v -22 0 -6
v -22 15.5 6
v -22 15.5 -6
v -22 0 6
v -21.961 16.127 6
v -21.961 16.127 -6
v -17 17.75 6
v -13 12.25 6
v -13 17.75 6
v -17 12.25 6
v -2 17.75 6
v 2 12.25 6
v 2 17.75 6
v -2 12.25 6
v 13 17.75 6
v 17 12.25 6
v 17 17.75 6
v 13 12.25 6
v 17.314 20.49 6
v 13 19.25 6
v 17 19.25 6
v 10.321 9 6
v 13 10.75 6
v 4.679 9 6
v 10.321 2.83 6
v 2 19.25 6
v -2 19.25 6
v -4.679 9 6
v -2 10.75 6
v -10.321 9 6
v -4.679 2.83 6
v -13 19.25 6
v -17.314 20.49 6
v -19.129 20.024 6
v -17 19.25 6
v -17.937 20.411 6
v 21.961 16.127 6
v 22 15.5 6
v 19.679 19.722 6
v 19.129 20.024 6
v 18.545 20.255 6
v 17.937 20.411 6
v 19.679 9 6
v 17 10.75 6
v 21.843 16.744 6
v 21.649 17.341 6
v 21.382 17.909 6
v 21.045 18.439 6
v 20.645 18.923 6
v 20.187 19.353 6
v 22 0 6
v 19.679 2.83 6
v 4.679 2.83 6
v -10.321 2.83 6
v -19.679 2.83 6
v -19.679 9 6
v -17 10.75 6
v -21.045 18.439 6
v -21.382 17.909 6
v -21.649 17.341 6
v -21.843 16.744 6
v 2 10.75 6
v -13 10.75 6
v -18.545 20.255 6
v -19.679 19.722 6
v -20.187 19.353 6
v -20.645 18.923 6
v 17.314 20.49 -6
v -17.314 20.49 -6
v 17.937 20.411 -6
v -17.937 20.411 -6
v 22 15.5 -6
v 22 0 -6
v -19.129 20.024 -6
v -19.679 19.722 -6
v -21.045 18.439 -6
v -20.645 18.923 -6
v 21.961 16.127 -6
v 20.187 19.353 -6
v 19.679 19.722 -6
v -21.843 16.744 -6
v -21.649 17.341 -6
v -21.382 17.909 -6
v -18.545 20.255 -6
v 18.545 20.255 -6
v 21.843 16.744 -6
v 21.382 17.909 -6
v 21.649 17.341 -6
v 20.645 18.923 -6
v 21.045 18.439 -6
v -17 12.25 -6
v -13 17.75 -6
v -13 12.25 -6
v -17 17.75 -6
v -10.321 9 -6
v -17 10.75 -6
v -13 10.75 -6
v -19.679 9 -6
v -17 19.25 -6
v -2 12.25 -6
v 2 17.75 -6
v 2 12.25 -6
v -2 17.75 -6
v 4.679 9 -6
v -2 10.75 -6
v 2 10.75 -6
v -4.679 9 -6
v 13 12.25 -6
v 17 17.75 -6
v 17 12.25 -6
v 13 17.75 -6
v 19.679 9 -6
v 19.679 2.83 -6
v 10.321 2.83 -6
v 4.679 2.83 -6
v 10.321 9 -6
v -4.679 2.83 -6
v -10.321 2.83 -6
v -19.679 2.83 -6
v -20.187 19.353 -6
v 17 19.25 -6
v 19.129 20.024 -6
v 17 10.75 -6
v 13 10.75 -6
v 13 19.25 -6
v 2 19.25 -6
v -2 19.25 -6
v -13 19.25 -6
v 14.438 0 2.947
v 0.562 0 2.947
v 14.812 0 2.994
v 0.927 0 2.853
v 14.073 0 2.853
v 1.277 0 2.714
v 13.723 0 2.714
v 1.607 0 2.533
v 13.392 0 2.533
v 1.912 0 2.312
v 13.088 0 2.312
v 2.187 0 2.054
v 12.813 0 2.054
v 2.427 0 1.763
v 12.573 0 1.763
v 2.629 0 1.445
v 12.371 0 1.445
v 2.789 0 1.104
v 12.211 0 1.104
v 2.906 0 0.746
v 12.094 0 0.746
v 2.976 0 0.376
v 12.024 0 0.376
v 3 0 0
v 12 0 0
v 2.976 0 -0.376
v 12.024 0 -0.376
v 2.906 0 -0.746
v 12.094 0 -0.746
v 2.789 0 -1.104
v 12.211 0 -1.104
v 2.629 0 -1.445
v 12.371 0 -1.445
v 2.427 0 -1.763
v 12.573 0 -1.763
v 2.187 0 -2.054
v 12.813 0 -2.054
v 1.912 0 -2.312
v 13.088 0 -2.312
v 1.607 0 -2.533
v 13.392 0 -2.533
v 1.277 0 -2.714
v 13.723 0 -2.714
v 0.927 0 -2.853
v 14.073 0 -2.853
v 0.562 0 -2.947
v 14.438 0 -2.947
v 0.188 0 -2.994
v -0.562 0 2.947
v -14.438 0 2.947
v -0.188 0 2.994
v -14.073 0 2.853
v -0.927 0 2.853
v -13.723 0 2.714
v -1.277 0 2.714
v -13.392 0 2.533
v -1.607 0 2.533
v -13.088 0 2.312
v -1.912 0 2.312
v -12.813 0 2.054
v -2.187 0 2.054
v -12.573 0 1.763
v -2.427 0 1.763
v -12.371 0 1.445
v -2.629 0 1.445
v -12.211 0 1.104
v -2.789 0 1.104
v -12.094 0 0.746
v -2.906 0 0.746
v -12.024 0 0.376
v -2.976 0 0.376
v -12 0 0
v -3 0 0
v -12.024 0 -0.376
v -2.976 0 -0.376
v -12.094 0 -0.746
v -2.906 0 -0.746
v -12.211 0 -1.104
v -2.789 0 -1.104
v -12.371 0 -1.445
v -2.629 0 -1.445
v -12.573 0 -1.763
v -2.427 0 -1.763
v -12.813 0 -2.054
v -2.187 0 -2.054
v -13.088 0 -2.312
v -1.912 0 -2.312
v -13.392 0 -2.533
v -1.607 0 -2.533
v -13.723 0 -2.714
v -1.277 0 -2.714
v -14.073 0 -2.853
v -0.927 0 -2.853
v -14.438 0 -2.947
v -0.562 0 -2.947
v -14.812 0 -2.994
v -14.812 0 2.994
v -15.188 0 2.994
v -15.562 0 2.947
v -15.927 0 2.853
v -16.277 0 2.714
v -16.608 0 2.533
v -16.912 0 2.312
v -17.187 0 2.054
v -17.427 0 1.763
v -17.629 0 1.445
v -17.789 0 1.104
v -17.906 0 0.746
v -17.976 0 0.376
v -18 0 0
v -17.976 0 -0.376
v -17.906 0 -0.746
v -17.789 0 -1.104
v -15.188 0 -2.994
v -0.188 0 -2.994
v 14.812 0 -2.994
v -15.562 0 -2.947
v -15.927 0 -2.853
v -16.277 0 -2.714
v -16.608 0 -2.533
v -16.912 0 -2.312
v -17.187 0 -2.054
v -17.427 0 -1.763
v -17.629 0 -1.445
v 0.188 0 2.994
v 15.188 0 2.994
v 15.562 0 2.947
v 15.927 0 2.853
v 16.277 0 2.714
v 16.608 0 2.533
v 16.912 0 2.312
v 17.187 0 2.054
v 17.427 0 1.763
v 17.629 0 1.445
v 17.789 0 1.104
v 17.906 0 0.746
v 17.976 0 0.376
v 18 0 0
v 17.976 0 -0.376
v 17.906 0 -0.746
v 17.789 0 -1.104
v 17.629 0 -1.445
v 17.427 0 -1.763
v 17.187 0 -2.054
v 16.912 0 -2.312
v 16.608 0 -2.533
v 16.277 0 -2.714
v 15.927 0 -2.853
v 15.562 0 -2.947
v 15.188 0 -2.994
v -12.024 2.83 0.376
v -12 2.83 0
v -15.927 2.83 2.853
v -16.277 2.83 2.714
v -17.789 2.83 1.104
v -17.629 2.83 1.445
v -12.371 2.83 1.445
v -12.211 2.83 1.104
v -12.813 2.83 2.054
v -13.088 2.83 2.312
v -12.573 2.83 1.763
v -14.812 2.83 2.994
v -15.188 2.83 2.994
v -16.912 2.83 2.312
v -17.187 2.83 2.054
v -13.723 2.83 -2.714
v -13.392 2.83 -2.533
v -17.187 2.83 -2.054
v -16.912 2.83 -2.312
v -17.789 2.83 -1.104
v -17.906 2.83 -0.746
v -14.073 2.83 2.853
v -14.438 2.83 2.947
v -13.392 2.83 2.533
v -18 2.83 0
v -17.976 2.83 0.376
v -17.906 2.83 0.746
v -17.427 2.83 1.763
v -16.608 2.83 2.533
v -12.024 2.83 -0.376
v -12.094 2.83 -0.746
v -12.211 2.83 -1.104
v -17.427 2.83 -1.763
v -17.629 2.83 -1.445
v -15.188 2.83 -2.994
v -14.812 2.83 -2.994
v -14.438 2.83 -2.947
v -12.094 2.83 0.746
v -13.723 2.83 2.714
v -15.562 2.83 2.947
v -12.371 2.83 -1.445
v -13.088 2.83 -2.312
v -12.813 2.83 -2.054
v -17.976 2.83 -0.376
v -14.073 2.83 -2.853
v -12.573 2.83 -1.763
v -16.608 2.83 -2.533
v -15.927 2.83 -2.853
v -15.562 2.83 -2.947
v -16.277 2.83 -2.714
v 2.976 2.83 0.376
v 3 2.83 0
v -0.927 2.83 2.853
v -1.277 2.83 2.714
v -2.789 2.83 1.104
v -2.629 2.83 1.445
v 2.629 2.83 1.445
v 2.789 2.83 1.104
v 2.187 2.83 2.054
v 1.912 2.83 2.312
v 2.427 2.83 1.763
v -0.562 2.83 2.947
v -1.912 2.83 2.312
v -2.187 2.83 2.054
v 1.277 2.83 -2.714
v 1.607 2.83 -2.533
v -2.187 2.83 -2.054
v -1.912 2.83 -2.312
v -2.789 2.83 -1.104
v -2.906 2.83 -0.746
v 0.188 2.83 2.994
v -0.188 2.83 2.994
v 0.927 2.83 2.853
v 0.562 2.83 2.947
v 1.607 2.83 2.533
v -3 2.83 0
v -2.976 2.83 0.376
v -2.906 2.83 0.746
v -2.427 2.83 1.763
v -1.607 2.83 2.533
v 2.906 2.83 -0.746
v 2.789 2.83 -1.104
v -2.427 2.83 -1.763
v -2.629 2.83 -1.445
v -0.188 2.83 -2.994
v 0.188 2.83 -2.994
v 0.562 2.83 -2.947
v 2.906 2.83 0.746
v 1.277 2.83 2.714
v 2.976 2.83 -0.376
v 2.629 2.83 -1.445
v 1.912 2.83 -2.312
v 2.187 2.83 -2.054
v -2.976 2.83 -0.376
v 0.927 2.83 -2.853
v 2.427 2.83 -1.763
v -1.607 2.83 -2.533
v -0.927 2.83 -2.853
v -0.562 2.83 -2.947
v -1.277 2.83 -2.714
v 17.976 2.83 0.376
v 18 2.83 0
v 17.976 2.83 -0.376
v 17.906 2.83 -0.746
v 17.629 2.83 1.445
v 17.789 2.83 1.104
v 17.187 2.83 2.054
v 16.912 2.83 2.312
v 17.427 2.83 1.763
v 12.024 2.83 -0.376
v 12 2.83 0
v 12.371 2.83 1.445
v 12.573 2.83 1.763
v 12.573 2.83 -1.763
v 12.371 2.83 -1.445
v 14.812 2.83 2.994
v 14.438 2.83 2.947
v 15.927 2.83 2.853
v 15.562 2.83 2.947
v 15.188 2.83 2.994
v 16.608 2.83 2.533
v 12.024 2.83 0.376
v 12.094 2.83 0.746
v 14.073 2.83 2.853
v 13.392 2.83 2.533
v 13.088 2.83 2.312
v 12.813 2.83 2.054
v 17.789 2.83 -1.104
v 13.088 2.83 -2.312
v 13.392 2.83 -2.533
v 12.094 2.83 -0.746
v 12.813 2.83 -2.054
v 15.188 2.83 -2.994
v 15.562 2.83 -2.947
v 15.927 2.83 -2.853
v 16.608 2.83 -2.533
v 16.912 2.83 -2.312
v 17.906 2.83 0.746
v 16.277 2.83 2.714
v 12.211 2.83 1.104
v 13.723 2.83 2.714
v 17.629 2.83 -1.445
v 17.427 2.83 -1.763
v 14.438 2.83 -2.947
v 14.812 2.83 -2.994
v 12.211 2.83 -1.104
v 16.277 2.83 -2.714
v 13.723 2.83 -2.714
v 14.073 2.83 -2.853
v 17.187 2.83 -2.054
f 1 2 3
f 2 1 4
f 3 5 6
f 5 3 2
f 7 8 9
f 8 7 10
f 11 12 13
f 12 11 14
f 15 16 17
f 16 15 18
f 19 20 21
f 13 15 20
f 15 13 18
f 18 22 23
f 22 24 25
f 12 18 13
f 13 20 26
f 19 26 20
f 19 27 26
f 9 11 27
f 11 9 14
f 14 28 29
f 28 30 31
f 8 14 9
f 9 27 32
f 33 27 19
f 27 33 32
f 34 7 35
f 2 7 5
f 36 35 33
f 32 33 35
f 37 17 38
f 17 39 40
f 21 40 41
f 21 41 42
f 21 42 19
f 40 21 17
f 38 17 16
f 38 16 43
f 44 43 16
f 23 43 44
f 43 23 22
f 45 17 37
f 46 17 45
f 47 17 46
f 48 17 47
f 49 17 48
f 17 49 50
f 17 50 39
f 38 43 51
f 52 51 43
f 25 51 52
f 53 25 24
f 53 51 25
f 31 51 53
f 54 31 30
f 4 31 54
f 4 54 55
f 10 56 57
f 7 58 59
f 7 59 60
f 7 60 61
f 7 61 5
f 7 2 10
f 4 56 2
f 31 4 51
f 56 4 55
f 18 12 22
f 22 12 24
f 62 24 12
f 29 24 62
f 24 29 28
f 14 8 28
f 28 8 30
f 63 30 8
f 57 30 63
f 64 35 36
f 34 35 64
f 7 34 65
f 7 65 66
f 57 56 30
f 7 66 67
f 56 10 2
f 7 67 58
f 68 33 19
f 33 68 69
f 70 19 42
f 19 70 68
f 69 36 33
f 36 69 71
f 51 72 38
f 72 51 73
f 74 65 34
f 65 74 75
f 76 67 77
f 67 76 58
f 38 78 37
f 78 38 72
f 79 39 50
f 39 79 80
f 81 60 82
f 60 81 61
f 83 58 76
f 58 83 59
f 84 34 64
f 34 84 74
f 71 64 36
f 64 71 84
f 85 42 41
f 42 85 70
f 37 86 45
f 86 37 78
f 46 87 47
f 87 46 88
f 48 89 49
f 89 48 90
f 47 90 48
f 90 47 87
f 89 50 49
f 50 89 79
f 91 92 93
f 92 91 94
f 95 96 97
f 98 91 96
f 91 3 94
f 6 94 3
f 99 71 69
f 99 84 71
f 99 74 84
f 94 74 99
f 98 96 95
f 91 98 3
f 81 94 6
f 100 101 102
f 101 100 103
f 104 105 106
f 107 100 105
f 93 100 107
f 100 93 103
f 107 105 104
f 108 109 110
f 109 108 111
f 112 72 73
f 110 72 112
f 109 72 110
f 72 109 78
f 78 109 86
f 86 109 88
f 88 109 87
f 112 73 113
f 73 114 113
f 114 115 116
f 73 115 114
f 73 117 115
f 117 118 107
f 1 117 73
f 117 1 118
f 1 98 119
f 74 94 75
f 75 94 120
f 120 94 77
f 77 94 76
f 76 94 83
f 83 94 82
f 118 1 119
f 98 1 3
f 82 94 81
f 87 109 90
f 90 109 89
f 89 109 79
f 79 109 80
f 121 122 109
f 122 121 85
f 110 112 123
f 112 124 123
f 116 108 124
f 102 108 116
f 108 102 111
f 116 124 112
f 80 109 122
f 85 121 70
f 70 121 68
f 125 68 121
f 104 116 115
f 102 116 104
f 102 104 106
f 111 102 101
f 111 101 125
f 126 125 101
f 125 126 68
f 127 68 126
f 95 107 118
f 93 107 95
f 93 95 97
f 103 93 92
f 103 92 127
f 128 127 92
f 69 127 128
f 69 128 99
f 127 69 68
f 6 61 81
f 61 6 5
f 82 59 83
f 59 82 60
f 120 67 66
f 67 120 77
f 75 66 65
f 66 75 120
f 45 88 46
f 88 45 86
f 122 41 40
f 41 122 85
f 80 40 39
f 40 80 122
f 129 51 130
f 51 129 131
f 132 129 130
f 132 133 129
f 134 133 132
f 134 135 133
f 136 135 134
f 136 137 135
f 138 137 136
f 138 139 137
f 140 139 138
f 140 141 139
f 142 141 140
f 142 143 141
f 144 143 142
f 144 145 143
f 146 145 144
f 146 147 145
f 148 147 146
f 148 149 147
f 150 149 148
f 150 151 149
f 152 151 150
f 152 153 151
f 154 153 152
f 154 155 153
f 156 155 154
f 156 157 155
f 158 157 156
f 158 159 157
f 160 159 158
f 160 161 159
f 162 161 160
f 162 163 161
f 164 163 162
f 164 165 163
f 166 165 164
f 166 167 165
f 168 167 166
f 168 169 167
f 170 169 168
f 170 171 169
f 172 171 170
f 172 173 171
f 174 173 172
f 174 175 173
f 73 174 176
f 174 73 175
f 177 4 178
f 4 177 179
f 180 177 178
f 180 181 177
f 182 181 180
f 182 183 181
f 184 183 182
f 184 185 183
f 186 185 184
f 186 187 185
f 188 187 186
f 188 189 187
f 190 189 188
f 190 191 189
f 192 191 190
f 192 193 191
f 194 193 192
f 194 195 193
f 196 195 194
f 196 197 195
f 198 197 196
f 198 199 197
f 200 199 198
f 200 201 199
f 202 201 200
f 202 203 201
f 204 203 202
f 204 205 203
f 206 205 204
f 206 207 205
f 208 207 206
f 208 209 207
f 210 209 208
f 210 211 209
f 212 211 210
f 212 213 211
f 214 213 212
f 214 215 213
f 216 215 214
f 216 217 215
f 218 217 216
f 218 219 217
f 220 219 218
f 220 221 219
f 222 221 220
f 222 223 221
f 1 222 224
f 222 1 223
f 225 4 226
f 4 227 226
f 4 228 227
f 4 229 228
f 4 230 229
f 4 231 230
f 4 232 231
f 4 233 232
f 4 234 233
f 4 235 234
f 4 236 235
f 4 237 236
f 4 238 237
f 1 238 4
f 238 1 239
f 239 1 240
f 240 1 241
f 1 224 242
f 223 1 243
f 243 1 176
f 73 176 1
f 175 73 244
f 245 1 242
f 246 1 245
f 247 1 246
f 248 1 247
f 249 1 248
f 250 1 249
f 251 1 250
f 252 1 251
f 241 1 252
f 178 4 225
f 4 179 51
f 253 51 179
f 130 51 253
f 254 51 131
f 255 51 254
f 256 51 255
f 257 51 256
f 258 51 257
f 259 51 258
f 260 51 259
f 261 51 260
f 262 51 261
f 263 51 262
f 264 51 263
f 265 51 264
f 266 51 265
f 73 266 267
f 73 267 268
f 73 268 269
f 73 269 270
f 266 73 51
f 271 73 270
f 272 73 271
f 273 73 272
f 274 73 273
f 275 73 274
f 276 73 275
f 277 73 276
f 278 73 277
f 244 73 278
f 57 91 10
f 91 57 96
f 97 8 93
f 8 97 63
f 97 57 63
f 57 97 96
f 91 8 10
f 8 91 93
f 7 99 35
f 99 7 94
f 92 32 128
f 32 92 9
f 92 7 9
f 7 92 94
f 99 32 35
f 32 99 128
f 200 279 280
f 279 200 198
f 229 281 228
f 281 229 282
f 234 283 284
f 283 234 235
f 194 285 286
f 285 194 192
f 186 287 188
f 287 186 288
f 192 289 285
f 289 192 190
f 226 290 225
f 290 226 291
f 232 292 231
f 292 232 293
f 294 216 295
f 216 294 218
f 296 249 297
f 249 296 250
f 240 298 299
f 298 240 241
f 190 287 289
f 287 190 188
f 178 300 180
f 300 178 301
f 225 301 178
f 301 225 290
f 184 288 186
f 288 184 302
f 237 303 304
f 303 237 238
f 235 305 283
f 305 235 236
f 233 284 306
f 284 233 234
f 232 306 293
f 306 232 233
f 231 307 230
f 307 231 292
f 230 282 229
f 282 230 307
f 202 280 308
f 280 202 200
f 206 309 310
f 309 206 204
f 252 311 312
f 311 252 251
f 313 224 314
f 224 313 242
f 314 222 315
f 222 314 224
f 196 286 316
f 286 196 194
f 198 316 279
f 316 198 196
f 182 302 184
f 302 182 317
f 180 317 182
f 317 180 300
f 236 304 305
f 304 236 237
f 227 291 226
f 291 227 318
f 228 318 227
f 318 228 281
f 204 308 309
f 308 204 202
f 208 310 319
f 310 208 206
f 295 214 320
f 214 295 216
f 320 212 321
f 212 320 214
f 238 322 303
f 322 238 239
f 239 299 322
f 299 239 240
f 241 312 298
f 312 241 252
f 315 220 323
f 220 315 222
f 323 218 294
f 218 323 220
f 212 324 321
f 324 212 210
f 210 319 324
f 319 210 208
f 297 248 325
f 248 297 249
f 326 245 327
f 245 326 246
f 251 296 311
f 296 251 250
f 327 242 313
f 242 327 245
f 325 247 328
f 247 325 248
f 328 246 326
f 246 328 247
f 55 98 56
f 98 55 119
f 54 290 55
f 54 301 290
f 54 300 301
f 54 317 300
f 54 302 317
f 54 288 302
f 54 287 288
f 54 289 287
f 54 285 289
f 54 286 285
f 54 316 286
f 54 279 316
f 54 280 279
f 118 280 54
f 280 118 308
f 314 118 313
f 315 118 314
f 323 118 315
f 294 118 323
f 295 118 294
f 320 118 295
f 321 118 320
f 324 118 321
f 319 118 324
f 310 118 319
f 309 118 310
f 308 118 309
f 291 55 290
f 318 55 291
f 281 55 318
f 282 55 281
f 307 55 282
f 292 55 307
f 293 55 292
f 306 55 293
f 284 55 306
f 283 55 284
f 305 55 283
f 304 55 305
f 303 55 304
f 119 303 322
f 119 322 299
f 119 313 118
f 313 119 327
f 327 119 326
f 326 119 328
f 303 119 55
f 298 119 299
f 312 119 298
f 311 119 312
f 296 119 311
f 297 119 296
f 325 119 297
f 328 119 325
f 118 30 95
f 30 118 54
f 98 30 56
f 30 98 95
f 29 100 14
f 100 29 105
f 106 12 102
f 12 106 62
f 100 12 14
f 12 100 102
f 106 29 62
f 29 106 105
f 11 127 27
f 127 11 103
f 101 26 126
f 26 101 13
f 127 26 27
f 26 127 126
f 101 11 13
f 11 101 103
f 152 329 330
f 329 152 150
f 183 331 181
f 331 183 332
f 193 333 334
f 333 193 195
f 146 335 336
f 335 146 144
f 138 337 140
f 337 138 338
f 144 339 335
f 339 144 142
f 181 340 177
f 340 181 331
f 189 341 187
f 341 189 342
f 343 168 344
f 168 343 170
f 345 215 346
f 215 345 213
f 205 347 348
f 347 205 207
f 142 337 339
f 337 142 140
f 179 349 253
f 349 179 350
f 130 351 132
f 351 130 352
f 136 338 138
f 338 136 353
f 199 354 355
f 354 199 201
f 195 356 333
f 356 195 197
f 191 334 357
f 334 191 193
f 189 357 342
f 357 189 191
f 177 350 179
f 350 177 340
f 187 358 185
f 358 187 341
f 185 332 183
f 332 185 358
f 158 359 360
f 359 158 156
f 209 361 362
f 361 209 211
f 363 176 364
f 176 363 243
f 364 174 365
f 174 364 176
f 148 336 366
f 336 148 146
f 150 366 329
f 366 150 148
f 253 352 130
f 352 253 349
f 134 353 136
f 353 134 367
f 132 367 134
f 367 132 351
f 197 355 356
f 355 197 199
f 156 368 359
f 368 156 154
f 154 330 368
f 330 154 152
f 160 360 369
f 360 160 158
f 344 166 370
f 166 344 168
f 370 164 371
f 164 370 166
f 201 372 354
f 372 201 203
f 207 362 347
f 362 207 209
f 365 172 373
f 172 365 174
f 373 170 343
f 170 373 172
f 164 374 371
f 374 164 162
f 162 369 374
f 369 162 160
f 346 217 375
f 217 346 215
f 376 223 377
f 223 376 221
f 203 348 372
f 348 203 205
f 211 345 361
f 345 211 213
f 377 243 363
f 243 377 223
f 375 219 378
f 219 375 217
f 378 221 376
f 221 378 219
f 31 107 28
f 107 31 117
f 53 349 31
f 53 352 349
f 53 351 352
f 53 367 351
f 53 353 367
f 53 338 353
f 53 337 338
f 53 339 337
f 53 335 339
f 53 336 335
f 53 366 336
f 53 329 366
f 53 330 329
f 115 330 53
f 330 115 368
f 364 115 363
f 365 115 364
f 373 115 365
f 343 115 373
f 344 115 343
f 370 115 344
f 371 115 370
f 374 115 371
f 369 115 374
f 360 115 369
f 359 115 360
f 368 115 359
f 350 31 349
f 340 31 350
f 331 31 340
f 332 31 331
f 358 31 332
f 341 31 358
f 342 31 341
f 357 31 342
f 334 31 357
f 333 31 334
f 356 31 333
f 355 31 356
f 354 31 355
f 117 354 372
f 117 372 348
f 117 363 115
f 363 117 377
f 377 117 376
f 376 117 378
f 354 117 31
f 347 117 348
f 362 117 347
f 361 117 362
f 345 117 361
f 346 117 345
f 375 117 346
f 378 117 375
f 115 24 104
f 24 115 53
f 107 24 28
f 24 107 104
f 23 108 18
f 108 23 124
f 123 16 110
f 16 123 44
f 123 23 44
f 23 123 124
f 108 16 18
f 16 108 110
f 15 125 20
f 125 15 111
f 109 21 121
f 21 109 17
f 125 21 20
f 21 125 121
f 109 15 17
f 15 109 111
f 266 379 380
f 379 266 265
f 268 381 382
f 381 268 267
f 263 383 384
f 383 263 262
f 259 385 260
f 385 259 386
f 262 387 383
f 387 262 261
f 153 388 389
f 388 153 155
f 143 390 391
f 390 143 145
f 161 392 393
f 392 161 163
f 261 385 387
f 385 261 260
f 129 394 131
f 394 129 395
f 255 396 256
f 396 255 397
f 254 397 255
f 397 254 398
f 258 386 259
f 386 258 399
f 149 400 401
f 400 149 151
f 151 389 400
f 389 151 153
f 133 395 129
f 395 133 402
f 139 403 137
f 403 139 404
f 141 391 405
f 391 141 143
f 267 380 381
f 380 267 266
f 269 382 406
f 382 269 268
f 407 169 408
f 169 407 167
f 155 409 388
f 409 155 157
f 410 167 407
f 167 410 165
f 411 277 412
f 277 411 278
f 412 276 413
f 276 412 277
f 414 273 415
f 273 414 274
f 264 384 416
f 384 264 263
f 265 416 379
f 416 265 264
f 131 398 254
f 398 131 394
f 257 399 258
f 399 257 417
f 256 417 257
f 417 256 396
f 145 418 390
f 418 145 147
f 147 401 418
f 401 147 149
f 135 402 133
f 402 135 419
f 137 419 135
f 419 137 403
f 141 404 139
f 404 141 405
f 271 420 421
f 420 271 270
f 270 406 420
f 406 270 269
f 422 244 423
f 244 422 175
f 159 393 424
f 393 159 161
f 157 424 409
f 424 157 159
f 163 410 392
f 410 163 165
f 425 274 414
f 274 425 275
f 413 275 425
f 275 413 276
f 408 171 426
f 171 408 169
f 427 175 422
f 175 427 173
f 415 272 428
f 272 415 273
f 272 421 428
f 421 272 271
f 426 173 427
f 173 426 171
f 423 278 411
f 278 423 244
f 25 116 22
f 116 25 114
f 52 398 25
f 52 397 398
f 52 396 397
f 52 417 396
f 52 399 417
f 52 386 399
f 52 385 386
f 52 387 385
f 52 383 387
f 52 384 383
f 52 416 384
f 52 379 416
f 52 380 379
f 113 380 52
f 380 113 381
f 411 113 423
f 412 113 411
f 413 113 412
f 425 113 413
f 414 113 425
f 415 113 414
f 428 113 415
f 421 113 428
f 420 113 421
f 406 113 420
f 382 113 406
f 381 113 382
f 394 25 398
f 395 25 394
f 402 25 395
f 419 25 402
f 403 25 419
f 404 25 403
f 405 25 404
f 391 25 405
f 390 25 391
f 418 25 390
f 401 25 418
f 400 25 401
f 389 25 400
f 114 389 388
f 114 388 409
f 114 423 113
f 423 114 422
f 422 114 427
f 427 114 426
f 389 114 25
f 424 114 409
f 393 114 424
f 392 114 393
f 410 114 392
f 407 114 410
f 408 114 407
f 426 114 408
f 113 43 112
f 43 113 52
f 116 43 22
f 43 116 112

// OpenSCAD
$fn = 50;


difference() {
	union() {
		translate(v = [0, 13.5000000000, -6.0000000000]) {
			rotate(a = [0, 0, 0]) {
				hull() {
					translate(v = [-17.0000000000, 2.0000000000, 0]) {
						rotate(a = [0, 0, 0]) {
							translate(v = [0, 0, 0]) {
								rotate(a = [0, 0, 0]) {
									cylinder(h = 12, r = 5);
								}
							}
						}
					}
					translate(v = [17.0000000000, 2.0000000000, 0]) {
						rotate(a = [0, 0, 0]) {
							translate(v = [0, 0, 0]) {
								rotate(a = [0, 0, 0]) {
									cylinder(h = 12, r = 5);
								}
							}
						}
					}
					translate(v = [-17.0000000000, -2.0000000000, 0]) {
						rotate(a = [0, 0, 0]) {
							translate(v = [0, 0, 0]) {
								rotate(a = [0, 0, 0]) {
									cylinder(h = 12, r = 5);
								}
							}
						}
					}
					translate(v = [17.0000000000, -2.0000000000, 0]) {
						rotate(a = [0, 0, 0]) {
							translate(v = [0, 0, 0]) {
								rotate(a = [0, 0, 0]) {
									cylinder(h = 12, r = 5);
								}
							}
						}
					}
				}
			}
		}
		translate(v = [-22.0000000000, 0, -6.0000000000]) {
			rotate(a = [0, 0, 0]) {
				cube(size = [44, 13.5000000000, 12]);
			}
		}
	}
	union() {
		translate(v = [-17.0000000000, 10.7500000000, -50]) {
			rotate(a = [0, 0, 0]) {
				cube(size = [4, 1.5000000000, 100]);
			}
		}
		translate(v = [-17.0000000000, 17.7500000000, -50]) {
			rotate(a = [0, 0, 0]) {
				cube(size = [4, 1.5000000000, 100]);
			}
		}
		translate(v = [-15.0000000000, 8, 0]) {
			rotate(a = [90, 0, 0]) {
				cylinder(h = 8, r = 3.0000000000);
			}
		}
		translate(v = [-19.6793760832, 9, -25]) {
			rotate(a = [90, 0, 0]) {
				cube(size = [9.3587521664, 100, 6.1700000000]);
			}
		}
		translate(v = [-2.0000000000, 10.7500000000, -50]) {
			rotate(a = [0, 0, 0]) {
				cube(size = [4, 1.5000000000, 100]);
			}
		}
		translate(v = [-2.0000000000, 17.7500000000, -50]) {
			rotate(a = [0, 0, 0]) {
				cube(size = [4, 1.5000000000, 100]);
			}
		}
		translate(v = [0.0000000000, 8, 0]) {
			rotate(a = [90, 0, 0]) {
				cylinder(h = 8, r = 3.0000000000);
			}
		}
		translate(v = [-4.6793760832, 9, -25]) {
			rotate(a = [90, 0, 0]) {
				cube(size = [9.3587521664, 100, 6.1700000000]);
			}
		}
		translate(v = [13.0000000000, 10.7500000000, -50]) {
			rotate(a = [0, 0, 0]) {
				cube(size = [4, 1.5000000000, 100]);
			}
		}
		translate(v = [13.0000000000, 17.7500000000, -50]) {
			rotate(a = [0, 0, 0]) {
				cube(size = [4, 1.5000000000, 100]);
			}
		}
		translate(v = [15.0000000000, 8, 0]) {
			rotate(a = [90, 0, 0]) {
				cylinder(h = 8, r = 3.0000000000);
			}
		}
		translate(v = [10.3206239168, 9, -25]) {
			rotate(a = [90, 0, 0]) {
				cube(size = [9.3587521664, 100, 6.1700000000]);
			}
		}
	}
}
